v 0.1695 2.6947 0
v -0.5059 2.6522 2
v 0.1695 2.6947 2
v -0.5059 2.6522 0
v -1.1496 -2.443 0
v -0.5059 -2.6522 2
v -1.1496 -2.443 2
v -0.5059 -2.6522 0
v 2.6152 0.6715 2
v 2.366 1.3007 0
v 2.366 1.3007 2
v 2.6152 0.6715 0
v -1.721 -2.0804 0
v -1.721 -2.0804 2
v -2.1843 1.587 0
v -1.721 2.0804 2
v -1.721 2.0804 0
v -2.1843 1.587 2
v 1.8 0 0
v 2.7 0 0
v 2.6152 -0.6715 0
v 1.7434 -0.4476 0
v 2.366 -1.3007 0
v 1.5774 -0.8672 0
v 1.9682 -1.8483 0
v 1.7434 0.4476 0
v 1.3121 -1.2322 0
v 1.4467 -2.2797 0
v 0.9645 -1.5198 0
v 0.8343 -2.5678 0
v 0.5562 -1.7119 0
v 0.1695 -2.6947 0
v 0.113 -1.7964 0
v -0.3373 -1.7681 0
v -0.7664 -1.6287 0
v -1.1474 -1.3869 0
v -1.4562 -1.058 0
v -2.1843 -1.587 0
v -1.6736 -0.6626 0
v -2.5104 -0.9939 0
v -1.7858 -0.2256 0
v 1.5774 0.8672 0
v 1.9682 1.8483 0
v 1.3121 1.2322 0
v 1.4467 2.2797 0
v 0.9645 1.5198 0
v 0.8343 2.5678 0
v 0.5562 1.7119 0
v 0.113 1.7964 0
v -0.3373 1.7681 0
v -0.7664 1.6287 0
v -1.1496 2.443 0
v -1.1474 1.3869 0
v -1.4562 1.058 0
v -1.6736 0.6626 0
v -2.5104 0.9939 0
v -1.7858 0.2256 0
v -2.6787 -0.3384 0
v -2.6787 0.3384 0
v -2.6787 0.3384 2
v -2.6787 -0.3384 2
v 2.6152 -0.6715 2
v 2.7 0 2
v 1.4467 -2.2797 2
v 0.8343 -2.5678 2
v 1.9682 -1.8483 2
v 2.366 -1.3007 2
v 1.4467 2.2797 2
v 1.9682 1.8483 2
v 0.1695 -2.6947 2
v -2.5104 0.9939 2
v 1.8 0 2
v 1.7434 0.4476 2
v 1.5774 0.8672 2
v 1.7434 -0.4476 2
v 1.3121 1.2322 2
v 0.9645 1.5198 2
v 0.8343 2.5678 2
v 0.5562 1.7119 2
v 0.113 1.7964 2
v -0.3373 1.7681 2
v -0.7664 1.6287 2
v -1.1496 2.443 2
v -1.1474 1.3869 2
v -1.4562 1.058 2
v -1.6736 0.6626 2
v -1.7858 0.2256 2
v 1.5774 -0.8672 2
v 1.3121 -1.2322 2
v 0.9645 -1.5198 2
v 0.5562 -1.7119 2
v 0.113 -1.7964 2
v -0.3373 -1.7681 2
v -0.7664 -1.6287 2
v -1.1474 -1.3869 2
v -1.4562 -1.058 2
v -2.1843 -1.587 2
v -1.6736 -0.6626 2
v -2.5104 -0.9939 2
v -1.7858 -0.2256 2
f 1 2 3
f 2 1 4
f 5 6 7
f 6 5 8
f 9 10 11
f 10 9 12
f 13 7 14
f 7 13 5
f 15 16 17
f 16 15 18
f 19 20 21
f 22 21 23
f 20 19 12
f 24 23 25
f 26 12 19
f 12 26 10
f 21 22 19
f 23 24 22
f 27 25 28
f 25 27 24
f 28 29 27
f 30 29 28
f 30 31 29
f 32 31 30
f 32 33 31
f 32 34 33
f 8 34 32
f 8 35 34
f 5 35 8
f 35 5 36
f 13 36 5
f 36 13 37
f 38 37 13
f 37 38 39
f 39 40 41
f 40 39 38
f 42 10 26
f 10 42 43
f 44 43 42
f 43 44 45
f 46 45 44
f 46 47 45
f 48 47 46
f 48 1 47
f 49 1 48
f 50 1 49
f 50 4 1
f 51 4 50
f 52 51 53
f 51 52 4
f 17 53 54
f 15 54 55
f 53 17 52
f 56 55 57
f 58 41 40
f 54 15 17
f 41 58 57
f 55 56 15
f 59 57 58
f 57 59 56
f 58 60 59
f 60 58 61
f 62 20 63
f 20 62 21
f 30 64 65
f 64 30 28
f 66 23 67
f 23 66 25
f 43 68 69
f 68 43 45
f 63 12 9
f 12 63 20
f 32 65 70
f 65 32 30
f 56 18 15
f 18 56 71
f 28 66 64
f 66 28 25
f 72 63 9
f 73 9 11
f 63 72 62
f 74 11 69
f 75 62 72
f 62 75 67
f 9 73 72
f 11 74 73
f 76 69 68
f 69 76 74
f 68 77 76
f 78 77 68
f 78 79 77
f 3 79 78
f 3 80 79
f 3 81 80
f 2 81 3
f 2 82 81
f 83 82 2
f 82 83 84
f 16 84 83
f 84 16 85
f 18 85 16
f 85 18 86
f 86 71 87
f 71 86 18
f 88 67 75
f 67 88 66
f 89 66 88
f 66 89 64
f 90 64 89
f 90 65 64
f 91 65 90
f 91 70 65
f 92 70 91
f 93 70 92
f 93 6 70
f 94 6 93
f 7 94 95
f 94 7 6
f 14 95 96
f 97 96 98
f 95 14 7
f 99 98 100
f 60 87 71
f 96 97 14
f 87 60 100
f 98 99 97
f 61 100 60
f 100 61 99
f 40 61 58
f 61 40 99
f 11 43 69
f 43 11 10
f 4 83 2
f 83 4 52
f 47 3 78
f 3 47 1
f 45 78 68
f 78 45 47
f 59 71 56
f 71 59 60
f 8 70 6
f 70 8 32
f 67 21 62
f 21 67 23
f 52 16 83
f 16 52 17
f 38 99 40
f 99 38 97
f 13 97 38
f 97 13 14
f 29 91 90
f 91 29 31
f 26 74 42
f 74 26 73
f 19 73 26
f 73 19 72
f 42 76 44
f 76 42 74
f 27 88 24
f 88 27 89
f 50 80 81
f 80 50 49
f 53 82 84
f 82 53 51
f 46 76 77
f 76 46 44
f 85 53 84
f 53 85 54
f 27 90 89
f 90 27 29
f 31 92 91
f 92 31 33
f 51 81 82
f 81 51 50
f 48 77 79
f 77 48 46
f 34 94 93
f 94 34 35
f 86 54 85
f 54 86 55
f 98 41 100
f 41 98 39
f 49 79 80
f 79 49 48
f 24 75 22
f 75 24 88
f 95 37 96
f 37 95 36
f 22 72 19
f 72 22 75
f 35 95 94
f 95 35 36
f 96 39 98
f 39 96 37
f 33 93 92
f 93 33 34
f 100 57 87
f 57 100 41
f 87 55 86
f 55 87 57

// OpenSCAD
height = 2;
screw_width = 3; // M3 screws

anti_warp = 1.2;

sw = anti_warp * screw_width;

$fn = $preview ? 10 : 25;

difference() {
	cylinder(h = height, d = sw * 1.5);
	cylinder(h = height, d = sw);
}
